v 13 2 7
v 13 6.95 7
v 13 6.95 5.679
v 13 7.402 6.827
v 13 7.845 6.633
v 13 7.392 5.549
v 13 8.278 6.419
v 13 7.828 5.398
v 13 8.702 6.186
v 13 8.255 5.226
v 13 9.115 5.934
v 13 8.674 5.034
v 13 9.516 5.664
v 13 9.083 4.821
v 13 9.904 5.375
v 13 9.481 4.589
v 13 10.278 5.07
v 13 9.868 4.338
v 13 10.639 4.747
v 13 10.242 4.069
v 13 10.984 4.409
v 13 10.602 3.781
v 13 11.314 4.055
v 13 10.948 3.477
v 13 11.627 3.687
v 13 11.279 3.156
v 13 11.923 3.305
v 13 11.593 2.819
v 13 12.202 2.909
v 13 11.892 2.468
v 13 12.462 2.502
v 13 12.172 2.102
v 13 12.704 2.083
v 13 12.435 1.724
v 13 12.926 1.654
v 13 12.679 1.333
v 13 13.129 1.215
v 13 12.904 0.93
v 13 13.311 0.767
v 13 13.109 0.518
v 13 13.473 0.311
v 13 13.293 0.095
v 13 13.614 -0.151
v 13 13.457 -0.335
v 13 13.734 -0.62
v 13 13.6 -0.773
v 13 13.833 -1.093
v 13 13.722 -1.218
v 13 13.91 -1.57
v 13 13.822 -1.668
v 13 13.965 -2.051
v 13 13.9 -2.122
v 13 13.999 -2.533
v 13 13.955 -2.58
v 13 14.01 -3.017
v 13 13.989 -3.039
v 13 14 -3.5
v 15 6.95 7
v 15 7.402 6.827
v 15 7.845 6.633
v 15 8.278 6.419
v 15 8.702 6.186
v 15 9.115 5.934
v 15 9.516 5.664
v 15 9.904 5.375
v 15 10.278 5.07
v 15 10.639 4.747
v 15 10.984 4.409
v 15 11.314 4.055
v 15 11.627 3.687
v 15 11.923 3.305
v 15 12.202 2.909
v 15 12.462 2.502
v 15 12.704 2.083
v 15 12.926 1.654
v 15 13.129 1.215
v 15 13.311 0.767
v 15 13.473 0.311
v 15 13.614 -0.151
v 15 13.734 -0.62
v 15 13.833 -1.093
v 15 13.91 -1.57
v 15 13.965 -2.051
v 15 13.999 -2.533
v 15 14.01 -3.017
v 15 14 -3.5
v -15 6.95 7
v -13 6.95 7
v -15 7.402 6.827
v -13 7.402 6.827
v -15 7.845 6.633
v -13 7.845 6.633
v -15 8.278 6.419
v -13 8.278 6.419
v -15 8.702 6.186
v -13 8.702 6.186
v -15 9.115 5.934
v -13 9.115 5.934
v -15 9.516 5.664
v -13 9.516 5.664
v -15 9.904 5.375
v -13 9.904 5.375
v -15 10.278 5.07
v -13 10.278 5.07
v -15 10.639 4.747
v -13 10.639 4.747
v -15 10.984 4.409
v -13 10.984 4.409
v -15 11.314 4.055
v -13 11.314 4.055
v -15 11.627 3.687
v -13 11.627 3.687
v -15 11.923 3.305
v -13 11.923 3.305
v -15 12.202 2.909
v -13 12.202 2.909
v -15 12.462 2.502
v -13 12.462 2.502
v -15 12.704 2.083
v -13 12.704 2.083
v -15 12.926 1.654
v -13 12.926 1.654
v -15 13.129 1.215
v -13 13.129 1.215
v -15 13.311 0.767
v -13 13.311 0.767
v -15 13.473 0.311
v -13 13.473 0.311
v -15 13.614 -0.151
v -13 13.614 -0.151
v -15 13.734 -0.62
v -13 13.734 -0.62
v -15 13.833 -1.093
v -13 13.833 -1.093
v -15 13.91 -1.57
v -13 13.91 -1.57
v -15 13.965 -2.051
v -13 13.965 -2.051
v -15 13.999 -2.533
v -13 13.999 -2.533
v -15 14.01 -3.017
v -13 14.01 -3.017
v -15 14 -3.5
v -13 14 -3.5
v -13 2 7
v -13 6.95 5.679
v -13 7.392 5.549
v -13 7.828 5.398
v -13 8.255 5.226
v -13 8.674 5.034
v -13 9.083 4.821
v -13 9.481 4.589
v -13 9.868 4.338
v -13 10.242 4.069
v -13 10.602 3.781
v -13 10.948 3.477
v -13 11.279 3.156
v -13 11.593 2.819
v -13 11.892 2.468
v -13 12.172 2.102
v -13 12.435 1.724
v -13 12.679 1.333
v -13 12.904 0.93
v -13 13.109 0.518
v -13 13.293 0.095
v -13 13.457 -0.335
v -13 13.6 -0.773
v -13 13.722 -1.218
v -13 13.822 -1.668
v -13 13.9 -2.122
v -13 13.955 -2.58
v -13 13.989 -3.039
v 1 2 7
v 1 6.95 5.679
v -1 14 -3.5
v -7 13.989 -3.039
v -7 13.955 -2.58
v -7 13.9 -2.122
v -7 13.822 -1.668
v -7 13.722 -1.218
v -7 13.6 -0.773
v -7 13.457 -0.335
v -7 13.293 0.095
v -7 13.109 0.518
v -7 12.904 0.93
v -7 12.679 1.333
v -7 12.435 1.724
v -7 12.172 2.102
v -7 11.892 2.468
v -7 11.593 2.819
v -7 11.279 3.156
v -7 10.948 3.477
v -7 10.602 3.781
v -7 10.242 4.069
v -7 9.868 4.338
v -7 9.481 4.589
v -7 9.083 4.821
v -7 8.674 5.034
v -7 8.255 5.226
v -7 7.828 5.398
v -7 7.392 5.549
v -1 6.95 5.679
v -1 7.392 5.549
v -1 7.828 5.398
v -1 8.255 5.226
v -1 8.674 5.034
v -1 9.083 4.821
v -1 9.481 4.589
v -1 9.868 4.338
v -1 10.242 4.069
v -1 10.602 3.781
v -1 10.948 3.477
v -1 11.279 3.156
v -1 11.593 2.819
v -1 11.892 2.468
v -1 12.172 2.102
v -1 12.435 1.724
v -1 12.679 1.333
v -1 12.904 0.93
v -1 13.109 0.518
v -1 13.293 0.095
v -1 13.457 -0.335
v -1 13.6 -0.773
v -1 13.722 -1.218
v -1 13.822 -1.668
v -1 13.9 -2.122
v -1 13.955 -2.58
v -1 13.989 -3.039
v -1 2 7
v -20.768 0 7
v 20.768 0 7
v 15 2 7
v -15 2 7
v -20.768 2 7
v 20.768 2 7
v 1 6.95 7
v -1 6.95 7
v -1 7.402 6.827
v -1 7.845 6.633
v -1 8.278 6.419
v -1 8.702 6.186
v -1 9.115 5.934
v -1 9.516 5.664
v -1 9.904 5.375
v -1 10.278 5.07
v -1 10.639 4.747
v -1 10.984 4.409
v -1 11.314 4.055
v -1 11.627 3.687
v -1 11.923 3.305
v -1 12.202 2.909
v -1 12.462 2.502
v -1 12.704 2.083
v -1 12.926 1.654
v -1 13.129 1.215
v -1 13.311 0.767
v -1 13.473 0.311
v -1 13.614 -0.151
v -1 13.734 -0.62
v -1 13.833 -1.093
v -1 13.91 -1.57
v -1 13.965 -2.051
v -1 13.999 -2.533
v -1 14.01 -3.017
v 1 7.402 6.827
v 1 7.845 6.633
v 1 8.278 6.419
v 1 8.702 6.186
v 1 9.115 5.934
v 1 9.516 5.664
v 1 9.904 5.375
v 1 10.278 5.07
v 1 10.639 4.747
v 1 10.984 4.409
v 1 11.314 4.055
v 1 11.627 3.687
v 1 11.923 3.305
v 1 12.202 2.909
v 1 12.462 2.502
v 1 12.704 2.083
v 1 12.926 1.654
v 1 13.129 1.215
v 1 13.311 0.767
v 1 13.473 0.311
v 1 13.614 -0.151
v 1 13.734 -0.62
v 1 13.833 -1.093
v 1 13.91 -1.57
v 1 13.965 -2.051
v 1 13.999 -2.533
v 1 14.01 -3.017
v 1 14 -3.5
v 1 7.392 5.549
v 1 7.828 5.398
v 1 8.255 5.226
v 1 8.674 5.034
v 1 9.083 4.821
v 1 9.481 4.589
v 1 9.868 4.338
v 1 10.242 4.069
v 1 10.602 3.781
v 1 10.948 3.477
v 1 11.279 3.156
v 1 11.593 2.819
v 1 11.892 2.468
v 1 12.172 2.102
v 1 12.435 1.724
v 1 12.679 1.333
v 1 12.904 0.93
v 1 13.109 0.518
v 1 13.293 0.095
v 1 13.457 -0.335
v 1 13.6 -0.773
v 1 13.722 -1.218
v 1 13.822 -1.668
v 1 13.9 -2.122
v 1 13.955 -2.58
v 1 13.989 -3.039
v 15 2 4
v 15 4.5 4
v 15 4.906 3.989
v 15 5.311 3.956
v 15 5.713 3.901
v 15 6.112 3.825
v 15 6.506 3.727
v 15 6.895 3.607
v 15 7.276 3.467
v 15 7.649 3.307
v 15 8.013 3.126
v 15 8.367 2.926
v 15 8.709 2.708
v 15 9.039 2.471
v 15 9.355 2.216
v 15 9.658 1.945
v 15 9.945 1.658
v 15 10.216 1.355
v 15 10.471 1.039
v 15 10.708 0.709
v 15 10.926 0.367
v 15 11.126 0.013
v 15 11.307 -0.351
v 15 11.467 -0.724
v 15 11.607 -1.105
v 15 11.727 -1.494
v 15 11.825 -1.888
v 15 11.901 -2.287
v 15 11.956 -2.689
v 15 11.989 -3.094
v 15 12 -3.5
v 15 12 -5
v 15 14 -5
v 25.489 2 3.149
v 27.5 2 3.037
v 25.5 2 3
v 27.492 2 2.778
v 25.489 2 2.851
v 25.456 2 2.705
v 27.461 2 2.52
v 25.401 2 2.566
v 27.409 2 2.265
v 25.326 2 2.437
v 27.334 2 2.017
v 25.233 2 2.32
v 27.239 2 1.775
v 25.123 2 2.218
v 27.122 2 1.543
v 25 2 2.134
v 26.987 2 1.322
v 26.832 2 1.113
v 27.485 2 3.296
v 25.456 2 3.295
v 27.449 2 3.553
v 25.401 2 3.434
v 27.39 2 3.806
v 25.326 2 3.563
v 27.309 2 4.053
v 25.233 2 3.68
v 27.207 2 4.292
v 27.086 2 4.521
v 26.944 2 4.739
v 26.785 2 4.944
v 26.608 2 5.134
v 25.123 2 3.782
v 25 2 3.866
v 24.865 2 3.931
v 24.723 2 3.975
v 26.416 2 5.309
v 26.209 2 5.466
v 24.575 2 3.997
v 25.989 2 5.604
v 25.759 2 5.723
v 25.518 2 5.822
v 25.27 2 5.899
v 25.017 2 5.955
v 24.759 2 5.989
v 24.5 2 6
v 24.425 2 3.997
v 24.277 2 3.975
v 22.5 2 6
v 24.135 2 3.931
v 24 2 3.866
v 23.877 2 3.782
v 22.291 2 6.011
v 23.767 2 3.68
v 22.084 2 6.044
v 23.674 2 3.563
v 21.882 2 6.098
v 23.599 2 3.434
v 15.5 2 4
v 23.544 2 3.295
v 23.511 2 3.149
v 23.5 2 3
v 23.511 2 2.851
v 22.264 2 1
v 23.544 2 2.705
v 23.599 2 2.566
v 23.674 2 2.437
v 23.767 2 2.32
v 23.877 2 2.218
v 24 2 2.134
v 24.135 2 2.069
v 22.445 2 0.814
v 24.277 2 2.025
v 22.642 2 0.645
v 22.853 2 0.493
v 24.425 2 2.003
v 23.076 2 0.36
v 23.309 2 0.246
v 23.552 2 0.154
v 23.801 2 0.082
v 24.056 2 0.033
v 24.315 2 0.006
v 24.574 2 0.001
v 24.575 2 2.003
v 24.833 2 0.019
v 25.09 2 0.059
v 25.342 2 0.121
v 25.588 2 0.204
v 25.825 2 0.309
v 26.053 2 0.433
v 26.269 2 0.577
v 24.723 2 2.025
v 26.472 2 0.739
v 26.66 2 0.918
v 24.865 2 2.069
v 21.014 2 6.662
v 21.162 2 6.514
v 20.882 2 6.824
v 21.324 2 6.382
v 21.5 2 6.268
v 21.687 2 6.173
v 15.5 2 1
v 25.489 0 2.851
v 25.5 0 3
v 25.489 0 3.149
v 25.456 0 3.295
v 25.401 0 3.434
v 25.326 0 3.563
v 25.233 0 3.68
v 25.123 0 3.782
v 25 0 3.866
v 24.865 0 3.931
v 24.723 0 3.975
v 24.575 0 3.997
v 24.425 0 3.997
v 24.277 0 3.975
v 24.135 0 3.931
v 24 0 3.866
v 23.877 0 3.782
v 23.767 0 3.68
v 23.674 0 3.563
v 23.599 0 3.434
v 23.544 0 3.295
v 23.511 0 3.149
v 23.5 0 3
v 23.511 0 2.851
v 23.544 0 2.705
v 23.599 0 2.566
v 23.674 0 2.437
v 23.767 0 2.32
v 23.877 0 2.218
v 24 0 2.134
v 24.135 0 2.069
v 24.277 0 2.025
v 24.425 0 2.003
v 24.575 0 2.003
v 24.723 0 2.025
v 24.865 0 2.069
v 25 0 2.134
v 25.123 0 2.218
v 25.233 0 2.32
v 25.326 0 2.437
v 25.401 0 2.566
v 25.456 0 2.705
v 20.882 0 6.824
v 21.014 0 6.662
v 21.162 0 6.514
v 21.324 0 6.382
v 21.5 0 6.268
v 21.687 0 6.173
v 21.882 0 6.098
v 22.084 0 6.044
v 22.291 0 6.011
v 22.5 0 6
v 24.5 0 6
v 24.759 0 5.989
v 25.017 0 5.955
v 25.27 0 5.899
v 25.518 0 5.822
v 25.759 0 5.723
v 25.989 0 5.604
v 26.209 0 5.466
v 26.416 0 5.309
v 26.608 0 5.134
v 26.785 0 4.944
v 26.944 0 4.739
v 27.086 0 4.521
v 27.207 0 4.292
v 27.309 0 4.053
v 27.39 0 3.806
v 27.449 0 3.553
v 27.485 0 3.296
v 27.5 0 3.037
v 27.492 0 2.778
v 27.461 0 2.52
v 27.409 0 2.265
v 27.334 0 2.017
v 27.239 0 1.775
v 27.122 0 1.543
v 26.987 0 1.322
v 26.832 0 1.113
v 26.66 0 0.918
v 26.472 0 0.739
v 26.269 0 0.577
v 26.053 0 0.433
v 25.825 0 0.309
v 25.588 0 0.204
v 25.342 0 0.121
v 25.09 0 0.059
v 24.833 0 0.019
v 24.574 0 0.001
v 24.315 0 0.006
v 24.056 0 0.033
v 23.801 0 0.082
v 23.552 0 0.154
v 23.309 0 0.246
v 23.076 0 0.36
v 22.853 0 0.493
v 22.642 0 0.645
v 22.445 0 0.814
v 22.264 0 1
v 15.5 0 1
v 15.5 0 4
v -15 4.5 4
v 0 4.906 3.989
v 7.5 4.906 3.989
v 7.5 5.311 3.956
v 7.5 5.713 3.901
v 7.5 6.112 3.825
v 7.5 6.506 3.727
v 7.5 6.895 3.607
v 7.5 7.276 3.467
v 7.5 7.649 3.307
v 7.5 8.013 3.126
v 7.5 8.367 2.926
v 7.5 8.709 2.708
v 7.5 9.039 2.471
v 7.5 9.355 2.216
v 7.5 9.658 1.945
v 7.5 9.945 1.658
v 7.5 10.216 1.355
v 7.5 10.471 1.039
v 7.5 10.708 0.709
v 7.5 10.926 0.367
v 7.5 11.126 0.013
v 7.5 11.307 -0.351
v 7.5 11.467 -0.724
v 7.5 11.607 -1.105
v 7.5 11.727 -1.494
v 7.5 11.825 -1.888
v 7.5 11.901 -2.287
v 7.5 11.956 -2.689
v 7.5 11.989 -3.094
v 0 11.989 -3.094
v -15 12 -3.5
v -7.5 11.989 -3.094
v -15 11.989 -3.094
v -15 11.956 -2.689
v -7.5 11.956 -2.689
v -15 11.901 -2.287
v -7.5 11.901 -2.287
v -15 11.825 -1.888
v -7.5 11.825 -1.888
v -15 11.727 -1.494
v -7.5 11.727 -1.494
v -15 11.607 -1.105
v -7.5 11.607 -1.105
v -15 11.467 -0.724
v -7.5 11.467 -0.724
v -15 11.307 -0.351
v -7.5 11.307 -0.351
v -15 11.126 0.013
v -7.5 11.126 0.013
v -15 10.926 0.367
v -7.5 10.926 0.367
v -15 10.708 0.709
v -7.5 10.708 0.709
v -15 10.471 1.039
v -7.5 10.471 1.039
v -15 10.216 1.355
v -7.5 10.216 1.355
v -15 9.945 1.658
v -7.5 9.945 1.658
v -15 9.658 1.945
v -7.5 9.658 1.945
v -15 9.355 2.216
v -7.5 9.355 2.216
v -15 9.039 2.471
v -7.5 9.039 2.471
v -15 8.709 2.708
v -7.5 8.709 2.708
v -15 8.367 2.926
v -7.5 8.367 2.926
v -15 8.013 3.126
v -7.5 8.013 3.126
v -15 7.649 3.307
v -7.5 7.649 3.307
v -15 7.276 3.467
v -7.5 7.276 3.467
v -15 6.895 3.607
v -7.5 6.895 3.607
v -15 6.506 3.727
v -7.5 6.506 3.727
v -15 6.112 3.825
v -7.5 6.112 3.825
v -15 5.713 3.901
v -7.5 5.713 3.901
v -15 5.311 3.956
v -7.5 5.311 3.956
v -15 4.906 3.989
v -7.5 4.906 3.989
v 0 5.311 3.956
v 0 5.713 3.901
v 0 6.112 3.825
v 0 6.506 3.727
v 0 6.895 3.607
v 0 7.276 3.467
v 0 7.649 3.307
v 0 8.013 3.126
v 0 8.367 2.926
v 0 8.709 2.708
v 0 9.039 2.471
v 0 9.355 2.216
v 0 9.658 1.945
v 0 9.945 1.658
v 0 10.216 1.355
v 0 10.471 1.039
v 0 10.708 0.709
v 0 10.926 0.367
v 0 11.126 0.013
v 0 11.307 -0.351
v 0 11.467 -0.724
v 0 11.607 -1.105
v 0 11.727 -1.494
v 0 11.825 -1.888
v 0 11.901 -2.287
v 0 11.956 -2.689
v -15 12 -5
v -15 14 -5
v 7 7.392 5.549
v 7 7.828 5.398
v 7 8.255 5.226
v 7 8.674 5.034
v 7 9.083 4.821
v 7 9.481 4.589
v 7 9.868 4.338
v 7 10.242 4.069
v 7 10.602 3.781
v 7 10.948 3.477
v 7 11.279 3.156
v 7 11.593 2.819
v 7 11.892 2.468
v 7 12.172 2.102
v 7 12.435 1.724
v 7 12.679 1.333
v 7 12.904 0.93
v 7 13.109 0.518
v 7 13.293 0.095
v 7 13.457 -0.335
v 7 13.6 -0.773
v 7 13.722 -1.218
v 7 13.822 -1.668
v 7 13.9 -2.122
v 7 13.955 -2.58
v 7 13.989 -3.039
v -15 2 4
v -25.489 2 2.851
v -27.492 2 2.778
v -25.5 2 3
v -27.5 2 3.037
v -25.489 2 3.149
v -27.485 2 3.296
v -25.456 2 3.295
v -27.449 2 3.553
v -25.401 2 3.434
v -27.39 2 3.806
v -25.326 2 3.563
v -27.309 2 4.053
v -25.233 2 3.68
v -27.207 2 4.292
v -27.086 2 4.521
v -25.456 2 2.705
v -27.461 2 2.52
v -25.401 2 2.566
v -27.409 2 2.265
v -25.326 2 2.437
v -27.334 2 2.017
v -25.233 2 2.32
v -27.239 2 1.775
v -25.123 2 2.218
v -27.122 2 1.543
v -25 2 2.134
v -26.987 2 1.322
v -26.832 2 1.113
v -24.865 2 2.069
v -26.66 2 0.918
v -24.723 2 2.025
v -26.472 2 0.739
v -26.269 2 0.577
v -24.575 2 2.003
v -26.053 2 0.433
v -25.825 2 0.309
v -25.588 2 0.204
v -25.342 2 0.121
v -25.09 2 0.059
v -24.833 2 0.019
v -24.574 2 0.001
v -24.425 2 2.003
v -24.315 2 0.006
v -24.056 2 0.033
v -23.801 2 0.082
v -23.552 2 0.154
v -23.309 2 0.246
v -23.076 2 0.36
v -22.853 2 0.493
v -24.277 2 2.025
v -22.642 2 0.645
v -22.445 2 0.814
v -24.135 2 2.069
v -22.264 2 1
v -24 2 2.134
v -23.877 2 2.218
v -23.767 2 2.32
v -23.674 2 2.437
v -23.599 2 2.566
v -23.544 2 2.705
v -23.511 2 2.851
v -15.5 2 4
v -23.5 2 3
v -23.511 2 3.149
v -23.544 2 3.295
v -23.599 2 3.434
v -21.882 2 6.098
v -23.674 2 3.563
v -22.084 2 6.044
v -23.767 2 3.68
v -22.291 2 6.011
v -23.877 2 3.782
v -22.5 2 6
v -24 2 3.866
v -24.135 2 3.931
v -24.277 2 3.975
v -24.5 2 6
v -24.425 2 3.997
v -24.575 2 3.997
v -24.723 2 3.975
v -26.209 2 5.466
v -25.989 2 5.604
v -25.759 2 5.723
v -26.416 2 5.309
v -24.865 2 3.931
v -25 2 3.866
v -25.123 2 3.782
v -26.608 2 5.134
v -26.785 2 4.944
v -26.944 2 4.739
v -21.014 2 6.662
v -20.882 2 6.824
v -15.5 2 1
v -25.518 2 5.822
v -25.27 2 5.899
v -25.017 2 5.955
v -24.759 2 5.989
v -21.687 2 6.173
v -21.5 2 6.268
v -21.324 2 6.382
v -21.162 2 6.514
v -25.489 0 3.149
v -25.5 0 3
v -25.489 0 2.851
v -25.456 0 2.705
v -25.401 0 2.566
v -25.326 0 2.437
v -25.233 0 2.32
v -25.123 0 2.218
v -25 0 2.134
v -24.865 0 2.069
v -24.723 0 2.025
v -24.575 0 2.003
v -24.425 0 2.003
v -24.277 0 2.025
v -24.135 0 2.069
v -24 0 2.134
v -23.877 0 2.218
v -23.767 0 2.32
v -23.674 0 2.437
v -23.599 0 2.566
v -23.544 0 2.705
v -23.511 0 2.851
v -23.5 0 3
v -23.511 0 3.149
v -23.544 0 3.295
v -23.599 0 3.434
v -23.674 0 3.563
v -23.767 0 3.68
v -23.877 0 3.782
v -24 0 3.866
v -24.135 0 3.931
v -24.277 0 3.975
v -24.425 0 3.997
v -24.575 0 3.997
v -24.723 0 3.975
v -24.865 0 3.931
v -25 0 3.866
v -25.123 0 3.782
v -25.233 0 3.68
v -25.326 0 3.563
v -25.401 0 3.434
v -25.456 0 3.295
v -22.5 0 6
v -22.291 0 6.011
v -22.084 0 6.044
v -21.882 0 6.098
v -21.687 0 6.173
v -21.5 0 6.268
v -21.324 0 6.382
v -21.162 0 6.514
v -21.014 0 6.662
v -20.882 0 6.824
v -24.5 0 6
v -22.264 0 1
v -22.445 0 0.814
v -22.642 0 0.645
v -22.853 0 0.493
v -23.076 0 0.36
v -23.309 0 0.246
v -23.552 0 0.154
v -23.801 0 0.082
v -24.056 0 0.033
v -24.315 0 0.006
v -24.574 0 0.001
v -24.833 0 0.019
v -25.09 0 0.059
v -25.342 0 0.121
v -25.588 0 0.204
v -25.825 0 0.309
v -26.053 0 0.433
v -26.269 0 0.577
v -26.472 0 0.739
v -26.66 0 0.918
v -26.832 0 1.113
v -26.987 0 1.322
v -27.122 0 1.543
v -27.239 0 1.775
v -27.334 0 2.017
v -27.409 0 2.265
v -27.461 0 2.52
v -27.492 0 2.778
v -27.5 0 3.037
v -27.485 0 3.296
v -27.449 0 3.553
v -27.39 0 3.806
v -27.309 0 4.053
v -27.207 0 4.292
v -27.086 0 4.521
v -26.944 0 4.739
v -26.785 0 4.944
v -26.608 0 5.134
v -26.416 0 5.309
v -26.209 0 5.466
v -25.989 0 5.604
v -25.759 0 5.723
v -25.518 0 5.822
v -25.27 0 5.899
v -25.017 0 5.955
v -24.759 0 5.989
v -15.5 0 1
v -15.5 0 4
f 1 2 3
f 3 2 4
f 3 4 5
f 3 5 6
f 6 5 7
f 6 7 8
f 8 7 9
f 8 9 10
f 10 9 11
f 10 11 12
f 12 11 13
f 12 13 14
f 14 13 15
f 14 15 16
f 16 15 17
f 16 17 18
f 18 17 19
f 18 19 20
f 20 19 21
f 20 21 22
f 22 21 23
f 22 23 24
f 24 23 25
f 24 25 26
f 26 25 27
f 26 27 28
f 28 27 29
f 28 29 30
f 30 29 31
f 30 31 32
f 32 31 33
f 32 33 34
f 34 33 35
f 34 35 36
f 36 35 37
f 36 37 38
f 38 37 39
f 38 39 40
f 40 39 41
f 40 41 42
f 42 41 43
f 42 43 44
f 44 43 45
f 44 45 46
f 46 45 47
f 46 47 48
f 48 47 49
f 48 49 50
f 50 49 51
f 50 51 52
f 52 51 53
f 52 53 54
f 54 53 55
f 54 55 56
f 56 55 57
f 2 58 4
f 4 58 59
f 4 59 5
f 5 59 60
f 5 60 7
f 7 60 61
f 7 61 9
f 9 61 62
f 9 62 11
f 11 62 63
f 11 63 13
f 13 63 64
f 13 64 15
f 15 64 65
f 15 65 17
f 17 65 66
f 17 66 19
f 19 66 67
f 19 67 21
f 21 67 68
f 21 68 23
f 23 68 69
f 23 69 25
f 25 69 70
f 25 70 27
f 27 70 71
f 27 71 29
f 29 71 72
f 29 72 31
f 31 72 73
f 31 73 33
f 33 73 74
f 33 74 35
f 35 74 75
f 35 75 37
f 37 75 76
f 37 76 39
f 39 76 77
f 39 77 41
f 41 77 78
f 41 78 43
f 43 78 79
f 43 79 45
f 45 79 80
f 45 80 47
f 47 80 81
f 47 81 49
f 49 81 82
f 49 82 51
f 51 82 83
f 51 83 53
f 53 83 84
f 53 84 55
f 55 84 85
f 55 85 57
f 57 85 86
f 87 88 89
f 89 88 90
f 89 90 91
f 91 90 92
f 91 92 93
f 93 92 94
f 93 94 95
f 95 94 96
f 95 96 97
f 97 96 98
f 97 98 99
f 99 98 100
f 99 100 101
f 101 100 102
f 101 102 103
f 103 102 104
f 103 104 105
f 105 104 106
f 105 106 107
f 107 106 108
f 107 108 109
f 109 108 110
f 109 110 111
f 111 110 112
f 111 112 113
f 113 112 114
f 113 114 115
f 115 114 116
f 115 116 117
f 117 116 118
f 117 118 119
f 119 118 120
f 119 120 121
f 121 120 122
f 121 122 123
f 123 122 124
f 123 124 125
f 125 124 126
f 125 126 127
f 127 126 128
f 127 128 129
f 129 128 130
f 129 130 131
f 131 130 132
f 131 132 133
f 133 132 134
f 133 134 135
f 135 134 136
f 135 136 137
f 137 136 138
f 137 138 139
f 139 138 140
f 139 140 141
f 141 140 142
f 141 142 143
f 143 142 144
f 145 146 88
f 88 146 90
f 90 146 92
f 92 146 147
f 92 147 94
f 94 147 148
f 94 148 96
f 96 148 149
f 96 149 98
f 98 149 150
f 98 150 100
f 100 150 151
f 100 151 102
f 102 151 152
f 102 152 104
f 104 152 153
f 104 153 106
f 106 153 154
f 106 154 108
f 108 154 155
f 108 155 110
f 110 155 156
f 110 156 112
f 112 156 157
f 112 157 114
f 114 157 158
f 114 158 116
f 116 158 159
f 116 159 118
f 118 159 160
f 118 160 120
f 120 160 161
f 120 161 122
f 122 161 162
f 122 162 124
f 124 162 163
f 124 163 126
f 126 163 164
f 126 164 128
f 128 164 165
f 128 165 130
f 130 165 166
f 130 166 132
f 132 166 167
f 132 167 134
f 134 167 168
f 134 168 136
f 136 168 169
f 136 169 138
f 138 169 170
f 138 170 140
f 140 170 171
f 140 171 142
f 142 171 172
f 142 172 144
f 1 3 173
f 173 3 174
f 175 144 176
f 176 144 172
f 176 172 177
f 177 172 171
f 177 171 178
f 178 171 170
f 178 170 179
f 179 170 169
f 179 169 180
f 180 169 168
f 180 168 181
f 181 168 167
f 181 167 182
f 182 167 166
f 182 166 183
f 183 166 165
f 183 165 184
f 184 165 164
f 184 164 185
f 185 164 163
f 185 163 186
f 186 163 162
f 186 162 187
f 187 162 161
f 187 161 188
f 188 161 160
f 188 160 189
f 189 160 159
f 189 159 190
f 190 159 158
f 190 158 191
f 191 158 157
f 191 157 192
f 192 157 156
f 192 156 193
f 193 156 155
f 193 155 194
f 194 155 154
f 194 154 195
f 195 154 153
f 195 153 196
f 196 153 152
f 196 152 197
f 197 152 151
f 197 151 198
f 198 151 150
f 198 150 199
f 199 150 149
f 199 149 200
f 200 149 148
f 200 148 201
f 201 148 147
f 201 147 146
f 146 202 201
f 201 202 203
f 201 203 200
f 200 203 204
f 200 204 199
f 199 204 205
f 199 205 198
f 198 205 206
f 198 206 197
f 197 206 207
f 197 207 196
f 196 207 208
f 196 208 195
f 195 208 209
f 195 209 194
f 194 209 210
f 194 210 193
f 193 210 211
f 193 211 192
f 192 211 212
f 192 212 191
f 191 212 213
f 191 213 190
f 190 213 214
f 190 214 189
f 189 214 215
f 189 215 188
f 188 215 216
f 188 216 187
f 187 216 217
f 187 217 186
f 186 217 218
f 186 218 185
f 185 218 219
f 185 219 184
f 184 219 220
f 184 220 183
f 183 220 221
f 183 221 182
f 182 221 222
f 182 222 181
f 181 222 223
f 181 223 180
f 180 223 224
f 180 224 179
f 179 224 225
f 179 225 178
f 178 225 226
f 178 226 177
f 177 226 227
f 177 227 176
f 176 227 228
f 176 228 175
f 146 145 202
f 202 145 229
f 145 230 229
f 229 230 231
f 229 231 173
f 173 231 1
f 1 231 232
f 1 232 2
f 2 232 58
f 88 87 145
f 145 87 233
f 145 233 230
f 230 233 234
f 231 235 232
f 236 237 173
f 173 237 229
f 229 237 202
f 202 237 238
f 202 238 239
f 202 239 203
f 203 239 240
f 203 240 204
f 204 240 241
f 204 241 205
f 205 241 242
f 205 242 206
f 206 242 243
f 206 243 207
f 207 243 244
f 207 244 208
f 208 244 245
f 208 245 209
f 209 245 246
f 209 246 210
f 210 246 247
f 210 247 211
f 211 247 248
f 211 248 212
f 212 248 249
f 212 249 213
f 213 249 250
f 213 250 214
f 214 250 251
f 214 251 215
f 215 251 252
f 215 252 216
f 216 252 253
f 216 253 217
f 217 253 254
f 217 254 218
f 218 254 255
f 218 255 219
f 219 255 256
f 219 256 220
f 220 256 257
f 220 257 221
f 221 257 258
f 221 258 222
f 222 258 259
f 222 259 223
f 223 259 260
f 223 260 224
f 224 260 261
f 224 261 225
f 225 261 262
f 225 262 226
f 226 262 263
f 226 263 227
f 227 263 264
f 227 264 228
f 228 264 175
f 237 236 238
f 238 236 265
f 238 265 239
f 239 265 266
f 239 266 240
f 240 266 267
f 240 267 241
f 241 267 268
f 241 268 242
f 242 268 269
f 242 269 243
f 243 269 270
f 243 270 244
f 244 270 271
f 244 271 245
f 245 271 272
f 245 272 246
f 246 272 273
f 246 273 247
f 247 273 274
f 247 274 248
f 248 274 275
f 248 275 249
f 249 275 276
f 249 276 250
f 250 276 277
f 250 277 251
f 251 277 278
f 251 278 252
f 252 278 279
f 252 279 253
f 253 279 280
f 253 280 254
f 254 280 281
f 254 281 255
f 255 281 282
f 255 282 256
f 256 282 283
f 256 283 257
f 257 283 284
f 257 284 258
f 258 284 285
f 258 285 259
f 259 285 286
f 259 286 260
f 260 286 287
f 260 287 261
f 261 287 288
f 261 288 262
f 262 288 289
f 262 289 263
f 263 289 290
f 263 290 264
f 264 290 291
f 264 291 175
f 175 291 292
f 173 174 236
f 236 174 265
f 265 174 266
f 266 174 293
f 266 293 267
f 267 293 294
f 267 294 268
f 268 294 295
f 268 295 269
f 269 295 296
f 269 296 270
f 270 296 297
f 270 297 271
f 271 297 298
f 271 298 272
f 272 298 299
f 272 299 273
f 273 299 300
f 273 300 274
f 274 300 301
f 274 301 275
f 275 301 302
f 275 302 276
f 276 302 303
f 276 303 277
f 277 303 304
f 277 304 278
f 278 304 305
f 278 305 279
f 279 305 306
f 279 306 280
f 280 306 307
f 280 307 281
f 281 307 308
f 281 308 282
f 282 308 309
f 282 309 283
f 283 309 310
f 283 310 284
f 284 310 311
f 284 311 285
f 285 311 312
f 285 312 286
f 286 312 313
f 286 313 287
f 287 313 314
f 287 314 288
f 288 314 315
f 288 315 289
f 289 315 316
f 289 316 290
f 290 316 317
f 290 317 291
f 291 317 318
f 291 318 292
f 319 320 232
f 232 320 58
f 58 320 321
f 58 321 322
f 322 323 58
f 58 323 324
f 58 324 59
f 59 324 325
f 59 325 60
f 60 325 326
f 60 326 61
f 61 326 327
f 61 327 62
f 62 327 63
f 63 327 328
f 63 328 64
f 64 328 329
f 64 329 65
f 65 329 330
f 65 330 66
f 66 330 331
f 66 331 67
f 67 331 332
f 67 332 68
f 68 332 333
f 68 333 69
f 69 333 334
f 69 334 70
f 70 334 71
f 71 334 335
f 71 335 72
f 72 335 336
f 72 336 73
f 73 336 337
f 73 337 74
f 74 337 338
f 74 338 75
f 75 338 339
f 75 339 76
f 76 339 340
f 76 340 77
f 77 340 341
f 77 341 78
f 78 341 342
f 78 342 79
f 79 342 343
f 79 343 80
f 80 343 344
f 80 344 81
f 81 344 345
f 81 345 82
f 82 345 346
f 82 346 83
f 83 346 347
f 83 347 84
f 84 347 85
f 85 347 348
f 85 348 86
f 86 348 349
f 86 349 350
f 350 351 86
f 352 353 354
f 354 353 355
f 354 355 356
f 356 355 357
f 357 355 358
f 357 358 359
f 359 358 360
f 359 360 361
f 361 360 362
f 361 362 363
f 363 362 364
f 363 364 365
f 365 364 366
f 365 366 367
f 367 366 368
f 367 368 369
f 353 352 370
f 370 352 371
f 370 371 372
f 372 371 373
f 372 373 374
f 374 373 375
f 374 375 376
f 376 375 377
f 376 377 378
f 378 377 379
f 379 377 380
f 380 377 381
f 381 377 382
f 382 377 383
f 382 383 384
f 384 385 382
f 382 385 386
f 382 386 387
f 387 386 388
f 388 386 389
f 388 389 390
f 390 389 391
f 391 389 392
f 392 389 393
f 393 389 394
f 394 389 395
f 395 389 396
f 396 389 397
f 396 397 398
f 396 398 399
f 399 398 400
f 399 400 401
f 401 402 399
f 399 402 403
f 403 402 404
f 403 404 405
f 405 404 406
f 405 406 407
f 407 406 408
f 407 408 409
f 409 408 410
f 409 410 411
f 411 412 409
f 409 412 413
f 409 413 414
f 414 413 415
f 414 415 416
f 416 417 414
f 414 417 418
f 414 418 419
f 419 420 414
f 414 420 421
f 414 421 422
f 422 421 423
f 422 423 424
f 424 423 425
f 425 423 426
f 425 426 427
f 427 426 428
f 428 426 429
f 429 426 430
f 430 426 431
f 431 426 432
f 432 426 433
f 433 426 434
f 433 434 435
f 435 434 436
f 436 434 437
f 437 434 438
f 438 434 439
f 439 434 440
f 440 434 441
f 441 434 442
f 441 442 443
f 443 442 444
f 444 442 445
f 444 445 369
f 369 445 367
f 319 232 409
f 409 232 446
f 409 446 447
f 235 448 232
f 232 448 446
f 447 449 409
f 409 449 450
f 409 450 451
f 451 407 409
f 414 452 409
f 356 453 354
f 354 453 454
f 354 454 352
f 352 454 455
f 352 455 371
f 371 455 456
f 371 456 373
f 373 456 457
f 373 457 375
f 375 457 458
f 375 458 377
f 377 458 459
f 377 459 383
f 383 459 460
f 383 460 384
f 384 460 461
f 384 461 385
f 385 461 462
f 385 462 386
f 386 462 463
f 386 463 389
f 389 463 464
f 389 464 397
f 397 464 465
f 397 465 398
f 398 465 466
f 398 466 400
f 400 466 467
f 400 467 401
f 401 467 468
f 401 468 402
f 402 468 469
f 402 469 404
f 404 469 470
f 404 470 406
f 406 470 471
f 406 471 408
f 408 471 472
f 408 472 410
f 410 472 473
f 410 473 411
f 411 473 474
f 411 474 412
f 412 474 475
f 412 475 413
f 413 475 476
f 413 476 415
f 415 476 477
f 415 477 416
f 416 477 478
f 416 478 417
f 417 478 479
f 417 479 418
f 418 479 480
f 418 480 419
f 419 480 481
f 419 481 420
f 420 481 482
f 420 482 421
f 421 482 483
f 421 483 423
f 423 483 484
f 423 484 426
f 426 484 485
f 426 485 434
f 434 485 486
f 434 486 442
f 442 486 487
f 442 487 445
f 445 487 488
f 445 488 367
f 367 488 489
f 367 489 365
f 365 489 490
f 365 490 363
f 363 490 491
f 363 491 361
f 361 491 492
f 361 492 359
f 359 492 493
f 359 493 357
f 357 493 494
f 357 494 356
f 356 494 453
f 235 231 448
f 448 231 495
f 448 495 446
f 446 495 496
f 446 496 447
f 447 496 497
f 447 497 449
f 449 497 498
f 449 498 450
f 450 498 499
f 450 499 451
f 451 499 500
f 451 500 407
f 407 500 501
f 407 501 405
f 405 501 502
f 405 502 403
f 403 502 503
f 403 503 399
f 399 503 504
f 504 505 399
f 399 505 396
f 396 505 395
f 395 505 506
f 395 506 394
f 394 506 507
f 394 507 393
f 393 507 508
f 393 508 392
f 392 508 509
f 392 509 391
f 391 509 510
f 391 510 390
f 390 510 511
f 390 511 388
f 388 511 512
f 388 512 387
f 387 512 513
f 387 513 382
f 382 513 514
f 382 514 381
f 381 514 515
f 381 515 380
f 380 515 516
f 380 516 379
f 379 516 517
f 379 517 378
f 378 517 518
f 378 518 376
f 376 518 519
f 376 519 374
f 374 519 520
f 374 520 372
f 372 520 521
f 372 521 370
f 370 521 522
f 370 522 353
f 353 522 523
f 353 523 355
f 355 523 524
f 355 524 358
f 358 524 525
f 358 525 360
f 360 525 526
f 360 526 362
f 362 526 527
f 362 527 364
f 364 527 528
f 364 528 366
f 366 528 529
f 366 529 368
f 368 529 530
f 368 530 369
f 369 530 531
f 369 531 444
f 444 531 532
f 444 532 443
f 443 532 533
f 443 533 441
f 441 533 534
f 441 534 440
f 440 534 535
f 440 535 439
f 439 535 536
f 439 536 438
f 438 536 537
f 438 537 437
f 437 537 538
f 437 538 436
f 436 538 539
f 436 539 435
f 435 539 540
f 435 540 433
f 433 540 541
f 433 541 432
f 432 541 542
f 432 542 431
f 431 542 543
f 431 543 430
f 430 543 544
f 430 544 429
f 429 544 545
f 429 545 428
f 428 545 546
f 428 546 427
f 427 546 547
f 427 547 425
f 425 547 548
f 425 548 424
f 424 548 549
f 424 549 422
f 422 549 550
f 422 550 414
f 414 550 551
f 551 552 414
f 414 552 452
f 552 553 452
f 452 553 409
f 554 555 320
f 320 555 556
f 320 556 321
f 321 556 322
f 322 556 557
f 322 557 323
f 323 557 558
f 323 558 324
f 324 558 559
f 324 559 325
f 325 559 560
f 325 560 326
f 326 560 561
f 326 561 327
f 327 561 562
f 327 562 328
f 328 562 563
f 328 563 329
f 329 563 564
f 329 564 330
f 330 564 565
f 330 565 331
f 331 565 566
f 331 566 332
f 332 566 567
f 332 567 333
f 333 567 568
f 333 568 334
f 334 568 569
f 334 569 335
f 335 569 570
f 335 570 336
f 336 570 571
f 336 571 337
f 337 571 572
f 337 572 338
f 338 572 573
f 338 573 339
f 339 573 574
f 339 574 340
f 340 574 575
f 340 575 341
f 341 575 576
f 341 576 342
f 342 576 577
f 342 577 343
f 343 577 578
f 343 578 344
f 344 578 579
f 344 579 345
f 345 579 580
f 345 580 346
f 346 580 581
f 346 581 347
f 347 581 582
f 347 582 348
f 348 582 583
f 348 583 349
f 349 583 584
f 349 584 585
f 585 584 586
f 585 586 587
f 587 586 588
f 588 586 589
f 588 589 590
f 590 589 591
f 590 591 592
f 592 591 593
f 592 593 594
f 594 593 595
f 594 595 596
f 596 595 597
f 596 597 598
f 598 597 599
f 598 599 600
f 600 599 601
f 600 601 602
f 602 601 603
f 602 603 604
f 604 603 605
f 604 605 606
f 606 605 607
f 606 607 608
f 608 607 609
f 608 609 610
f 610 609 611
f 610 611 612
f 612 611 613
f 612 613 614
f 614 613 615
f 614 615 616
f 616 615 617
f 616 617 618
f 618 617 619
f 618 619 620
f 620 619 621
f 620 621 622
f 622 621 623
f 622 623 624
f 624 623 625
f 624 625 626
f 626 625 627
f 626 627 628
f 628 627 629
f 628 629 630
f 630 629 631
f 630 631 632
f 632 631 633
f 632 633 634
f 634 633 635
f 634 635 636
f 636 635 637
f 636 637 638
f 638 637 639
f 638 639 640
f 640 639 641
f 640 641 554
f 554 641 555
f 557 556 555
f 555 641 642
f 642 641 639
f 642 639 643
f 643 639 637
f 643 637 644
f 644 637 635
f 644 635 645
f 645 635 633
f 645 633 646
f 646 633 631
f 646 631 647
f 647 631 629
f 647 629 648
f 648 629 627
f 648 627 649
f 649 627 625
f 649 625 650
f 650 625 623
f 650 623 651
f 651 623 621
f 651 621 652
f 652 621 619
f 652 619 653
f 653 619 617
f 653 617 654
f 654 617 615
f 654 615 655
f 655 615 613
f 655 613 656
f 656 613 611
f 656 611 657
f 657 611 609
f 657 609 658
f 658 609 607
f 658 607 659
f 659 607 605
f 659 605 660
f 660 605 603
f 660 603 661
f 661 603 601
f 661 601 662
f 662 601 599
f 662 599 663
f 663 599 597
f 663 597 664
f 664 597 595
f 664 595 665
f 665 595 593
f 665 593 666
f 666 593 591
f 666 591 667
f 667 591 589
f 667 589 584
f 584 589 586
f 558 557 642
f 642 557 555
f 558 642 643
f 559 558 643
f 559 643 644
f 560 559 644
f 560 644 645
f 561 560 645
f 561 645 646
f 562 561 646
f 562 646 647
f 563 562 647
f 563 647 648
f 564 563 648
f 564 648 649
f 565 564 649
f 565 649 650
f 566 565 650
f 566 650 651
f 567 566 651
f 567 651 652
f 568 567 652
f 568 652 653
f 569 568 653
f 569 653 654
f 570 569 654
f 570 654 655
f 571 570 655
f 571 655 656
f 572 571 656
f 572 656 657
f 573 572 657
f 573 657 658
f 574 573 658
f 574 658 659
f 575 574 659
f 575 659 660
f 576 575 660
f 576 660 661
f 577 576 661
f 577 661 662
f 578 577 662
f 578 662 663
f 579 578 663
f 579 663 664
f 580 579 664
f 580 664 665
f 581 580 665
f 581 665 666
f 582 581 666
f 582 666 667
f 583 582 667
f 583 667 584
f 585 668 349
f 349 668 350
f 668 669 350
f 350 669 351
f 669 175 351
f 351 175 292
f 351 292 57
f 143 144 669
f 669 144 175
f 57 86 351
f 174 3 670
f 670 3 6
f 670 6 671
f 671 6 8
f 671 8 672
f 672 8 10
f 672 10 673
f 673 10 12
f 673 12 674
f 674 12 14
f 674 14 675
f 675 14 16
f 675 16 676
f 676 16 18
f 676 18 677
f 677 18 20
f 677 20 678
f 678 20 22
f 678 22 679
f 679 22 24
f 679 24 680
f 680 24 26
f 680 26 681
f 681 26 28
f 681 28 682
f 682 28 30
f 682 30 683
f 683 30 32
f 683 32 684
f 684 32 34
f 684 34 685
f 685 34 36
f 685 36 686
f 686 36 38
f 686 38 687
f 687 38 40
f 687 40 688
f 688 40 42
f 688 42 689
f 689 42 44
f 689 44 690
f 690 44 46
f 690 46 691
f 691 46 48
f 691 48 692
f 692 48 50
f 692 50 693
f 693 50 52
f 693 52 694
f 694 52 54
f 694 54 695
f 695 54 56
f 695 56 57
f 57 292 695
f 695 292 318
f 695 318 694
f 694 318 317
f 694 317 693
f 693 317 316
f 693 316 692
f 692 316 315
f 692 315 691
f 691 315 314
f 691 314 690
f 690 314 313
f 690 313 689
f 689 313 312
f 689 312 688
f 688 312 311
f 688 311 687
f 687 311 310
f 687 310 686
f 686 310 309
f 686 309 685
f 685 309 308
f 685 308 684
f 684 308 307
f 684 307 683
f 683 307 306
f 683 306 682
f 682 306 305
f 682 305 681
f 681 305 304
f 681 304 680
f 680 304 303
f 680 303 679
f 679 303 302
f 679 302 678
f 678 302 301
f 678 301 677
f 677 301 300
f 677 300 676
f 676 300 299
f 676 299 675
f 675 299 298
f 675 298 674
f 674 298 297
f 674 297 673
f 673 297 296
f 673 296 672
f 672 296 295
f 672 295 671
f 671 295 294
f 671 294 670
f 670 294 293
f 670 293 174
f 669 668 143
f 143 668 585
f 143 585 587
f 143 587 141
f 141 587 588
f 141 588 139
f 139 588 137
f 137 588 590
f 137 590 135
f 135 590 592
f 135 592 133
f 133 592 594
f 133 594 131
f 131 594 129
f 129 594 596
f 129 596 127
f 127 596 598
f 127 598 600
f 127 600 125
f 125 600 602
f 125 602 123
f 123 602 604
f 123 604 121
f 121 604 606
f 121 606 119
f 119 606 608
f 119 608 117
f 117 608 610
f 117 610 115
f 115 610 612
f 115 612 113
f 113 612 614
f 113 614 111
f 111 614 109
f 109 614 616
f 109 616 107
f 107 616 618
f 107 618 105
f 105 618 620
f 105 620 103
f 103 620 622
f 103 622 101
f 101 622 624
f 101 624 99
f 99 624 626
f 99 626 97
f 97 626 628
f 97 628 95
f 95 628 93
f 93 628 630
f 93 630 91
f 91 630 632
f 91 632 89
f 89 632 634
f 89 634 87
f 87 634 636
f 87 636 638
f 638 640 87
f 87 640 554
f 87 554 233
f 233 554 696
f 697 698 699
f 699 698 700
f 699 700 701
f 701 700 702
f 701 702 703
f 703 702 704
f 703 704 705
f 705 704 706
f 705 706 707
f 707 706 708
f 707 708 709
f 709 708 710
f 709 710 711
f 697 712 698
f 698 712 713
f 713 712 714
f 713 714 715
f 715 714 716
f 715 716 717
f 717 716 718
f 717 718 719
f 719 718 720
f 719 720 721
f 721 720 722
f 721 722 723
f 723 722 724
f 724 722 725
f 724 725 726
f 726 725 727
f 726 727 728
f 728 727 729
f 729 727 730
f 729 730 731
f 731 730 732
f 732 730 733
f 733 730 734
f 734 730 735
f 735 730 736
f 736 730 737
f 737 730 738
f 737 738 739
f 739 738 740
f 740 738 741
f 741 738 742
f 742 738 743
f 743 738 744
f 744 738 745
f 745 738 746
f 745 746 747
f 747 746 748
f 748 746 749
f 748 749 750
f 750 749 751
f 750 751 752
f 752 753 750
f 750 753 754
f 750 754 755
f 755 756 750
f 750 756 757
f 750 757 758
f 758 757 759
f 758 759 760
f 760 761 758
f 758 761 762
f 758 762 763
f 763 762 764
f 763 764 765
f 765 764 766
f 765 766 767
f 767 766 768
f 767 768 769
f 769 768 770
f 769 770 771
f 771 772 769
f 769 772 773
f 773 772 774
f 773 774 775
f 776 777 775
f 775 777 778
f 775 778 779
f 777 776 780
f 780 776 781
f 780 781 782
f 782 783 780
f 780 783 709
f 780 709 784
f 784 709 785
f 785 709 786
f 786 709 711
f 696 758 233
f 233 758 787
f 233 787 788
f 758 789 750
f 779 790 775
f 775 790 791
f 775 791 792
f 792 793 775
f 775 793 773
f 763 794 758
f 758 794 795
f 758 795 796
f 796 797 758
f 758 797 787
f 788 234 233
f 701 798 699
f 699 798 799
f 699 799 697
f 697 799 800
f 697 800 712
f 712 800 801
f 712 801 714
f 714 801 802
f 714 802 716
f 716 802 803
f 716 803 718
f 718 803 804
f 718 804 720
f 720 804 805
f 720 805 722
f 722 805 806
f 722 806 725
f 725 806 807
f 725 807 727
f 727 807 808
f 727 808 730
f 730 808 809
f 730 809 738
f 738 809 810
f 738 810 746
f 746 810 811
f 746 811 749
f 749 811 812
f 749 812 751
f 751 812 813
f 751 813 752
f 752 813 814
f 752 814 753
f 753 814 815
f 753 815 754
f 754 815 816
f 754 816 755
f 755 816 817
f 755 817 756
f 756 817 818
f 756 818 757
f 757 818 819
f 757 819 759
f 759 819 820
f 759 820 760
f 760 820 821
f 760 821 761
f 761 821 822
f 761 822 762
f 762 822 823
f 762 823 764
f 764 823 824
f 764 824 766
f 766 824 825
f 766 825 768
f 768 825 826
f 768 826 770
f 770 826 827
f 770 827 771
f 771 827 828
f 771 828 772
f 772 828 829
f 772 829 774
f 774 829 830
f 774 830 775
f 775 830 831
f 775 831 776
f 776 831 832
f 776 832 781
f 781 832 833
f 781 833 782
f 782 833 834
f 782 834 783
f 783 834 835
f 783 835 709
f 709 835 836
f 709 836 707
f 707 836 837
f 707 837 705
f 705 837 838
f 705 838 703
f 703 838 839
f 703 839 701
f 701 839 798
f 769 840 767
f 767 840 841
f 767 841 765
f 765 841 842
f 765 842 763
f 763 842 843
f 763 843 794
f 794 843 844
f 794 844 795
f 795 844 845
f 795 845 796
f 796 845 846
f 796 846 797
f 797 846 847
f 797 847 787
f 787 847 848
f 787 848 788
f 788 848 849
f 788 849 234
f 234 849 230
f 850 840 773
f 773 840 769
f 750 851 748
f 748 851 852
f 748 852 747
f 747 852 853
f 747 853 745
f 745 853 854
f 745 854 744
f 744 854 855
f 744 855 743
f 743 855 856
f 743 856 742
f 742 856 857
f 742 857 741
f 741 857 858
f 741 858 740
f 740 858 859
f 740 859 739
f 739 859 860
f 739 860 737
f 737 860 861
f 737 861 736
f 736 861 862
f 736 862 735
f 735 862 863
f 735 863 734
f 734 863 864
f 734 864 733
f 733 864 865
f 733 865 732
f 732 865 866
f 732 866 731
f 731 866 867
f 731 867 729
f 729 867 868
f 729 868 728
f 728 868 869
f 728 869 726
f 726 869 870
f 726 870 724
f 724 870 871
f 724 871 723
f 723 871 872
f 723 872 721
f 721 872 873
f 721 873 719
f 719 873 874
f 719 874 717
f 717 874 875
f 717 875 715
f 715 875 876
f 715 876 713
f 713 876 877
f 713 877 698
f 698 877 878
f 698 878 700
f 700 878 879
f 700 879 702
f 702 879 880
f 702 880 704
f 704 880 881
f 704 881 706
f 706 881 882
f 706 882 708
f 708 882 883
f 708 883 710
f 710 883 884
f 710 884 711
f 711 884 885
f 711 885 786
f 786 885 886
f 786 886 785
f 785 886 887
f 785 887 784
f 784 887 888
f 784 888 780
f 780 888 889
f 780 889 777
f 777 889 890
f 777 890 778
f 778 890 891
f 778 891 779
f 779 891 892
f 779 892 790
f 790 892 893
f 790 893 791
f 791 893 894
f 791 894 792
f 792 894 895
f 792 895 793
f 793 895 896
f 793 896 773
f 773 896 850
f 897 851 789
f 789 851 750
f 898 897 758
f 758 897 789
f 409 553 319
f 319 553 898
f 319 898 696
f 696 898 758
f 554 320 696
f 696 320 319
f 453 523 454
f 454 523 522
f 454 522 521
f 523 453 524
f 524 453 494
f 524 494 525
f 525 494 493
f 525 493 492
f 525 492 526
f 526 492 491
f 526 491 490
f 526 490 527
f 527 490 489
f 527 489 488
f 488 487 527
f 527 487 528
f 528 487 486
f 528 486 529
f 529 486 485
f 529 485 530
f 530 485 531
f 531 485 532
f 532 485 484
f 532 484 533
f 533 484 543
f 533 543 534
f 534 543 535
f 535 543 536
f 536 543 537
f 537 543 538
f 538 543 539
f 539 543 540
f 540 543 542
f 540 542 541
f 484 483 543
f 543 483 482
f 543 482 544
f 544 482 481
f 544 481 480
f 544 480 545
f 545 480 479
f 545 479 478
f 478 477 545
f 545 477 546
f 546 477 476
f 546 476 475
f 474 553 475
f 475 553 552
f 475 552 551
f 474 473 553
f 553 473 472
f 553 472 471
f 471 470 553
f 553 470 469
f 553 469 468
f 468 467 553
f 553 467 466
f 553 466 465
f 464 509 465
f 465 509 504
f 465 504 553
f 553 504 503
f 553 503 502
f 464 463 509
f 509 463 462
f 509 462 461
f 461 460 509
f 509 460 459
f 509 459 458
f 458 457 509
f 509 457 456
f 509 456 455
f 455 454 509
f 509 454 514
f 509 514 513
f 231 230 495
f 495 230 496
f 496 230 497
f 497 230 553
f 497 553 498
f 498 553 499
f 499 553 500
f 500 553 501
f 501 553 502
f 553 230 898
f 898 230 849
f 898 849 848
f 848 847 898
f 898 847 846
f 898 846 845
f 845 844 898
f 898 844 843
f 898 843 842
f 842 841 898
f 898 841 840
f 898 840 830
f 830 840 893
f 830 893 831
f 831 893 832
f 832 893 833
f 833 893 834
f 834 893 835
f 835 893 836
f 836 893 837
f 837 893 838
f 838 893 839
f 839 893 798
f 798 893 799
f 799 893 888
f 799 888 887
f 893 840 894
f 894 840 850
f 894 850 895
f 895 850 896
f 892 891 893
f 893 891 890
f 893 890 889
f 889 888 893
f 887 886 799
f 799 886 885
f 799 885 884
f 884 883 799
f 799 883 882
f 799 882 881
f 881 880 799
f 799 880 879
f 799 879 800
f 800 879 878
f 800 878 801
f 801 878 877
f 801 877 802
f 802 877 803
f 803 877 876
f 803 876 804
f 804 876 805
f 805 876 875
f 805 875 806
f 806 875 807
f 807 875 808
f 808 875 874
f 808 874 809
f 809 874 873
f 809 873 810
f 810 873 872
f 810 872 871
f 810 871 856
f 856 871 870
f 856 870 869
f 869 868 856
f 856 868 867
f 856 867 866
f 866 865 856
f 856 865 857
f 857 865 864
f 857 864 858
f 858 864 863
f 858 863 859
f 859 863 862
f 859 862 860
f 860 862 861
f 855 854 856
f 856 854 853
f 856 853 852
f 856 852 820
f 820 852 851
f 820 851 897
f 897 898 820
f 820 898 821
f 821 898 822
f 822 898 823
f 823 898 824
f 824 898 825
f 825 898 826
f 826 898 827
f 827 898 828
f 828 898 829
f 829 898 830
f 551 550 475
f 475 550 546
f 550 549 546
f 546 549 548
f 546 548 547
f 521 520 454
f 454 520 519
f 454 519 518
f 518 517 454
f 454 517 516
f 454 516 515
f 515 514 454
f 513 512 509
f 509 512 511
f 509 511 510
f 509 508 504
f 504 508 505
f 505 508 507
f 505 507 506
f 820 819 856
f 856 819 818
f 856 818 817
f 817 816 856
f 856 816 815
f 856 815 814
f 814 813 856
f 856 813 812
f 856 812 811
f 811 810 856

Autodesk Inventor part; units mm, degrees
ref_plane "YZ Plane" through (0, 0, 0) normal (1, 0, 0) x (0, 1, 0)
ref_plane "XZ Plane" through (0, 0, 0) normal (0, 1, 0) x (-1, 0, 0)
sketch "Sketch1" plane through (0, 0, 0) normal (0, 1, 0) x (-1, 0, 0)
  line L0 (24.5, 6) -> (0, 6)
  line L1 (0, 6) -> (0, 0)
  line L2 (0, 0) -> (24.5, 0)
  line L3 (24.5, 0) -> (24.5, 6)
  circle A0 centre (24.5, 3) radius 3
  circle A1 centre (24.5, 3) radius 1
  line L4 (22.2639, 1) -> (0, 1)
  line L5 (0, 1) -> (0, 0)
  line L6 (0, 0) -> (22.2639, 0)
  line L7 (22.2639, 0) -> (22.2639, 1)
  line L8 (0, 4) -> (15.5, 4)
  line L9 (15.5, 4) -> (15.5, 1)
  line L10 (15.5, 1) -> (0, 1)
  line L11 (0, 1) -> (0, 4)
  line L12 (24.5, 3) -> (0, 3)
  line L13 (0, 3) -> (0, 7)
  line L14 (0, 7) -> (24.5, 7)
  line L15 (24.5, 7) -> (24.5, 3)
  line L16 (24.5, 7) -> (20.5, 7)
  line L17 (20.5, 7) -> (20.5, 6)
  line L18 (20.5, 6) -> (24.5, 6)
  line L19 (24.5, 6) -> (24.5, 7)
  circle A2 centre (22.5, 8) radius 2
  line L20 (15.5, 4) -> (15.5, 7)
  point P0 (22.5, 6)
  point P1 (20.7679, 7)
  point P2 (0, 6)
  point P3 (15.5, 3)
  point P4 (0, 3)
  point P5 (15.5, 6)
  point P6 (0, 6)
  dimension "d0" = 24.5
  dimension "d1" = 6
  dimension "d2" = 2
  dimension "d3" = 0
  dimension "d4" = 0
  dimension "d6" = 3
  dimension "d7" = 4
  dimension "d8" = 4
  dimension "d9" = 4
  dimension "d10" = 2
  dimension "d13" = 2
  dimension "d14" = 9
extrude "Extrusion1" add sketch "Sketch1" along normal blind 2 contours A0 L12 L9 L20 L0 | A0 L3 A1 | L3 A1 L12 A0 | L0 L17 L14 A2 | L12 A1 L3 A0 | A0 L4 L9 L12 | L0 L20 L14 L17 | L20 L8 L1 L0 | L0 L13 L14 L20
sketch "Sketch2" plane through (0, 0, 7) normal (1, 0, 0) x (0, 0, -1)
  line L0 (0, 2) -> (3, 2) projected
  line L1 (3, 2) -> (0, 2)
  line L2 (0, 2) -> (0, 12)
  line L3 (0, 12) -> (3, 12)
  line L4 (3, 12) -> (3, 2)
  line L5 (0, 12) -> (12, 12)
  line L6 (12, 12) -> (12, 9)
  line L7 (12, 9) -> (0, 9)
  line L8 (0, 9) -> (0, 12)
  line L9 (0, 0) -> (3, 0) projected
  circle A0 centre (10.5, 4.5) radius 7.5
  line L10 (3, 2) -> (6, 2) projected
  line L11 (0, 12) -> (12, 12)
  line L12 (12, 12) -> (12, 14)
  line L13 (12, 14) -> (0, 14)
  line L14 (0, 14) -> (0, 12)
  circle A1 centre (10.5, 4.5) radius 9.5
  line L15 (0, 2) -> (1.3214, 6.9501)
  point P0 (7, 0)
  point P1 (10.5, 14)
  point P2 (3, 4.5)
  point P3 (10.5, 12)
  dimension "d15" = 10
  dimension "d16" = 12
  dimension "d17" = 3
  dimension "d20" = 15
  dimension "d21" = 2.5
  dimension "d22" = 7.5
  dimension "d23" = 12
  dimension "d24" = 2
extrude "Extrusion2" add sketch "Sketch2" against normal blind 15 contours L15 A1 L0 | A1 L7 L4 L0 | A1 L4 L7 | L4 L7 A0 | L4 A1 L5 A0 L7 | A1 L13 L12 | L12 L5 A1
mirror "Mirror1" about plane through (0, 0, 7) normal (1, 0, 0) of "Extrusion1", "Extrusion2"
ref_plane "Work Plane1" through (0, 2, 4) normal (1, 0, 0) x (0, 0, -1)
sketch "Sketch4" plane through (0, 2, 4) normal (1, 0, 0) x (0, 0, -1)
  line L0 (-3, 0) -> (-1.6786, 4.9501) projected
  line L1 (-3, 0) -> (-3, 4.9501)
  line L2 (-3, 4.9501) -> (-1.6786, 4.9501)
  arc A0 (7.5, 12) -> (-1.6786, 4.9501) centre (7.5, 2.5) ccw projected
  arc A1 (7.5, 12) -> (-3, 4.9501) centre (7.0292, 1.357) ccw
  circle A2 centre (7.5, 2.5) radius 9.5
  point P0 (4, -2)
extrude "Extrusion3" add sketch "Sketch4" along normal mid plane 2 contours L1 L2 L0 | L2 A1 A0
pattern_linear "Rectangular Pattern1" count 2 spacing 14 along (-1, 0, 0) count 2 spacing 14 along (1, 0, 0) of "Extrusion3"
sketch "Sketch5" plane through (-15, 0, 7) normal (-1, 0, 0) x (0, 0, 1)
  point P0 (-7, 0)
equation "\"d11\" = d2"
properties part number "Battery mount front"
